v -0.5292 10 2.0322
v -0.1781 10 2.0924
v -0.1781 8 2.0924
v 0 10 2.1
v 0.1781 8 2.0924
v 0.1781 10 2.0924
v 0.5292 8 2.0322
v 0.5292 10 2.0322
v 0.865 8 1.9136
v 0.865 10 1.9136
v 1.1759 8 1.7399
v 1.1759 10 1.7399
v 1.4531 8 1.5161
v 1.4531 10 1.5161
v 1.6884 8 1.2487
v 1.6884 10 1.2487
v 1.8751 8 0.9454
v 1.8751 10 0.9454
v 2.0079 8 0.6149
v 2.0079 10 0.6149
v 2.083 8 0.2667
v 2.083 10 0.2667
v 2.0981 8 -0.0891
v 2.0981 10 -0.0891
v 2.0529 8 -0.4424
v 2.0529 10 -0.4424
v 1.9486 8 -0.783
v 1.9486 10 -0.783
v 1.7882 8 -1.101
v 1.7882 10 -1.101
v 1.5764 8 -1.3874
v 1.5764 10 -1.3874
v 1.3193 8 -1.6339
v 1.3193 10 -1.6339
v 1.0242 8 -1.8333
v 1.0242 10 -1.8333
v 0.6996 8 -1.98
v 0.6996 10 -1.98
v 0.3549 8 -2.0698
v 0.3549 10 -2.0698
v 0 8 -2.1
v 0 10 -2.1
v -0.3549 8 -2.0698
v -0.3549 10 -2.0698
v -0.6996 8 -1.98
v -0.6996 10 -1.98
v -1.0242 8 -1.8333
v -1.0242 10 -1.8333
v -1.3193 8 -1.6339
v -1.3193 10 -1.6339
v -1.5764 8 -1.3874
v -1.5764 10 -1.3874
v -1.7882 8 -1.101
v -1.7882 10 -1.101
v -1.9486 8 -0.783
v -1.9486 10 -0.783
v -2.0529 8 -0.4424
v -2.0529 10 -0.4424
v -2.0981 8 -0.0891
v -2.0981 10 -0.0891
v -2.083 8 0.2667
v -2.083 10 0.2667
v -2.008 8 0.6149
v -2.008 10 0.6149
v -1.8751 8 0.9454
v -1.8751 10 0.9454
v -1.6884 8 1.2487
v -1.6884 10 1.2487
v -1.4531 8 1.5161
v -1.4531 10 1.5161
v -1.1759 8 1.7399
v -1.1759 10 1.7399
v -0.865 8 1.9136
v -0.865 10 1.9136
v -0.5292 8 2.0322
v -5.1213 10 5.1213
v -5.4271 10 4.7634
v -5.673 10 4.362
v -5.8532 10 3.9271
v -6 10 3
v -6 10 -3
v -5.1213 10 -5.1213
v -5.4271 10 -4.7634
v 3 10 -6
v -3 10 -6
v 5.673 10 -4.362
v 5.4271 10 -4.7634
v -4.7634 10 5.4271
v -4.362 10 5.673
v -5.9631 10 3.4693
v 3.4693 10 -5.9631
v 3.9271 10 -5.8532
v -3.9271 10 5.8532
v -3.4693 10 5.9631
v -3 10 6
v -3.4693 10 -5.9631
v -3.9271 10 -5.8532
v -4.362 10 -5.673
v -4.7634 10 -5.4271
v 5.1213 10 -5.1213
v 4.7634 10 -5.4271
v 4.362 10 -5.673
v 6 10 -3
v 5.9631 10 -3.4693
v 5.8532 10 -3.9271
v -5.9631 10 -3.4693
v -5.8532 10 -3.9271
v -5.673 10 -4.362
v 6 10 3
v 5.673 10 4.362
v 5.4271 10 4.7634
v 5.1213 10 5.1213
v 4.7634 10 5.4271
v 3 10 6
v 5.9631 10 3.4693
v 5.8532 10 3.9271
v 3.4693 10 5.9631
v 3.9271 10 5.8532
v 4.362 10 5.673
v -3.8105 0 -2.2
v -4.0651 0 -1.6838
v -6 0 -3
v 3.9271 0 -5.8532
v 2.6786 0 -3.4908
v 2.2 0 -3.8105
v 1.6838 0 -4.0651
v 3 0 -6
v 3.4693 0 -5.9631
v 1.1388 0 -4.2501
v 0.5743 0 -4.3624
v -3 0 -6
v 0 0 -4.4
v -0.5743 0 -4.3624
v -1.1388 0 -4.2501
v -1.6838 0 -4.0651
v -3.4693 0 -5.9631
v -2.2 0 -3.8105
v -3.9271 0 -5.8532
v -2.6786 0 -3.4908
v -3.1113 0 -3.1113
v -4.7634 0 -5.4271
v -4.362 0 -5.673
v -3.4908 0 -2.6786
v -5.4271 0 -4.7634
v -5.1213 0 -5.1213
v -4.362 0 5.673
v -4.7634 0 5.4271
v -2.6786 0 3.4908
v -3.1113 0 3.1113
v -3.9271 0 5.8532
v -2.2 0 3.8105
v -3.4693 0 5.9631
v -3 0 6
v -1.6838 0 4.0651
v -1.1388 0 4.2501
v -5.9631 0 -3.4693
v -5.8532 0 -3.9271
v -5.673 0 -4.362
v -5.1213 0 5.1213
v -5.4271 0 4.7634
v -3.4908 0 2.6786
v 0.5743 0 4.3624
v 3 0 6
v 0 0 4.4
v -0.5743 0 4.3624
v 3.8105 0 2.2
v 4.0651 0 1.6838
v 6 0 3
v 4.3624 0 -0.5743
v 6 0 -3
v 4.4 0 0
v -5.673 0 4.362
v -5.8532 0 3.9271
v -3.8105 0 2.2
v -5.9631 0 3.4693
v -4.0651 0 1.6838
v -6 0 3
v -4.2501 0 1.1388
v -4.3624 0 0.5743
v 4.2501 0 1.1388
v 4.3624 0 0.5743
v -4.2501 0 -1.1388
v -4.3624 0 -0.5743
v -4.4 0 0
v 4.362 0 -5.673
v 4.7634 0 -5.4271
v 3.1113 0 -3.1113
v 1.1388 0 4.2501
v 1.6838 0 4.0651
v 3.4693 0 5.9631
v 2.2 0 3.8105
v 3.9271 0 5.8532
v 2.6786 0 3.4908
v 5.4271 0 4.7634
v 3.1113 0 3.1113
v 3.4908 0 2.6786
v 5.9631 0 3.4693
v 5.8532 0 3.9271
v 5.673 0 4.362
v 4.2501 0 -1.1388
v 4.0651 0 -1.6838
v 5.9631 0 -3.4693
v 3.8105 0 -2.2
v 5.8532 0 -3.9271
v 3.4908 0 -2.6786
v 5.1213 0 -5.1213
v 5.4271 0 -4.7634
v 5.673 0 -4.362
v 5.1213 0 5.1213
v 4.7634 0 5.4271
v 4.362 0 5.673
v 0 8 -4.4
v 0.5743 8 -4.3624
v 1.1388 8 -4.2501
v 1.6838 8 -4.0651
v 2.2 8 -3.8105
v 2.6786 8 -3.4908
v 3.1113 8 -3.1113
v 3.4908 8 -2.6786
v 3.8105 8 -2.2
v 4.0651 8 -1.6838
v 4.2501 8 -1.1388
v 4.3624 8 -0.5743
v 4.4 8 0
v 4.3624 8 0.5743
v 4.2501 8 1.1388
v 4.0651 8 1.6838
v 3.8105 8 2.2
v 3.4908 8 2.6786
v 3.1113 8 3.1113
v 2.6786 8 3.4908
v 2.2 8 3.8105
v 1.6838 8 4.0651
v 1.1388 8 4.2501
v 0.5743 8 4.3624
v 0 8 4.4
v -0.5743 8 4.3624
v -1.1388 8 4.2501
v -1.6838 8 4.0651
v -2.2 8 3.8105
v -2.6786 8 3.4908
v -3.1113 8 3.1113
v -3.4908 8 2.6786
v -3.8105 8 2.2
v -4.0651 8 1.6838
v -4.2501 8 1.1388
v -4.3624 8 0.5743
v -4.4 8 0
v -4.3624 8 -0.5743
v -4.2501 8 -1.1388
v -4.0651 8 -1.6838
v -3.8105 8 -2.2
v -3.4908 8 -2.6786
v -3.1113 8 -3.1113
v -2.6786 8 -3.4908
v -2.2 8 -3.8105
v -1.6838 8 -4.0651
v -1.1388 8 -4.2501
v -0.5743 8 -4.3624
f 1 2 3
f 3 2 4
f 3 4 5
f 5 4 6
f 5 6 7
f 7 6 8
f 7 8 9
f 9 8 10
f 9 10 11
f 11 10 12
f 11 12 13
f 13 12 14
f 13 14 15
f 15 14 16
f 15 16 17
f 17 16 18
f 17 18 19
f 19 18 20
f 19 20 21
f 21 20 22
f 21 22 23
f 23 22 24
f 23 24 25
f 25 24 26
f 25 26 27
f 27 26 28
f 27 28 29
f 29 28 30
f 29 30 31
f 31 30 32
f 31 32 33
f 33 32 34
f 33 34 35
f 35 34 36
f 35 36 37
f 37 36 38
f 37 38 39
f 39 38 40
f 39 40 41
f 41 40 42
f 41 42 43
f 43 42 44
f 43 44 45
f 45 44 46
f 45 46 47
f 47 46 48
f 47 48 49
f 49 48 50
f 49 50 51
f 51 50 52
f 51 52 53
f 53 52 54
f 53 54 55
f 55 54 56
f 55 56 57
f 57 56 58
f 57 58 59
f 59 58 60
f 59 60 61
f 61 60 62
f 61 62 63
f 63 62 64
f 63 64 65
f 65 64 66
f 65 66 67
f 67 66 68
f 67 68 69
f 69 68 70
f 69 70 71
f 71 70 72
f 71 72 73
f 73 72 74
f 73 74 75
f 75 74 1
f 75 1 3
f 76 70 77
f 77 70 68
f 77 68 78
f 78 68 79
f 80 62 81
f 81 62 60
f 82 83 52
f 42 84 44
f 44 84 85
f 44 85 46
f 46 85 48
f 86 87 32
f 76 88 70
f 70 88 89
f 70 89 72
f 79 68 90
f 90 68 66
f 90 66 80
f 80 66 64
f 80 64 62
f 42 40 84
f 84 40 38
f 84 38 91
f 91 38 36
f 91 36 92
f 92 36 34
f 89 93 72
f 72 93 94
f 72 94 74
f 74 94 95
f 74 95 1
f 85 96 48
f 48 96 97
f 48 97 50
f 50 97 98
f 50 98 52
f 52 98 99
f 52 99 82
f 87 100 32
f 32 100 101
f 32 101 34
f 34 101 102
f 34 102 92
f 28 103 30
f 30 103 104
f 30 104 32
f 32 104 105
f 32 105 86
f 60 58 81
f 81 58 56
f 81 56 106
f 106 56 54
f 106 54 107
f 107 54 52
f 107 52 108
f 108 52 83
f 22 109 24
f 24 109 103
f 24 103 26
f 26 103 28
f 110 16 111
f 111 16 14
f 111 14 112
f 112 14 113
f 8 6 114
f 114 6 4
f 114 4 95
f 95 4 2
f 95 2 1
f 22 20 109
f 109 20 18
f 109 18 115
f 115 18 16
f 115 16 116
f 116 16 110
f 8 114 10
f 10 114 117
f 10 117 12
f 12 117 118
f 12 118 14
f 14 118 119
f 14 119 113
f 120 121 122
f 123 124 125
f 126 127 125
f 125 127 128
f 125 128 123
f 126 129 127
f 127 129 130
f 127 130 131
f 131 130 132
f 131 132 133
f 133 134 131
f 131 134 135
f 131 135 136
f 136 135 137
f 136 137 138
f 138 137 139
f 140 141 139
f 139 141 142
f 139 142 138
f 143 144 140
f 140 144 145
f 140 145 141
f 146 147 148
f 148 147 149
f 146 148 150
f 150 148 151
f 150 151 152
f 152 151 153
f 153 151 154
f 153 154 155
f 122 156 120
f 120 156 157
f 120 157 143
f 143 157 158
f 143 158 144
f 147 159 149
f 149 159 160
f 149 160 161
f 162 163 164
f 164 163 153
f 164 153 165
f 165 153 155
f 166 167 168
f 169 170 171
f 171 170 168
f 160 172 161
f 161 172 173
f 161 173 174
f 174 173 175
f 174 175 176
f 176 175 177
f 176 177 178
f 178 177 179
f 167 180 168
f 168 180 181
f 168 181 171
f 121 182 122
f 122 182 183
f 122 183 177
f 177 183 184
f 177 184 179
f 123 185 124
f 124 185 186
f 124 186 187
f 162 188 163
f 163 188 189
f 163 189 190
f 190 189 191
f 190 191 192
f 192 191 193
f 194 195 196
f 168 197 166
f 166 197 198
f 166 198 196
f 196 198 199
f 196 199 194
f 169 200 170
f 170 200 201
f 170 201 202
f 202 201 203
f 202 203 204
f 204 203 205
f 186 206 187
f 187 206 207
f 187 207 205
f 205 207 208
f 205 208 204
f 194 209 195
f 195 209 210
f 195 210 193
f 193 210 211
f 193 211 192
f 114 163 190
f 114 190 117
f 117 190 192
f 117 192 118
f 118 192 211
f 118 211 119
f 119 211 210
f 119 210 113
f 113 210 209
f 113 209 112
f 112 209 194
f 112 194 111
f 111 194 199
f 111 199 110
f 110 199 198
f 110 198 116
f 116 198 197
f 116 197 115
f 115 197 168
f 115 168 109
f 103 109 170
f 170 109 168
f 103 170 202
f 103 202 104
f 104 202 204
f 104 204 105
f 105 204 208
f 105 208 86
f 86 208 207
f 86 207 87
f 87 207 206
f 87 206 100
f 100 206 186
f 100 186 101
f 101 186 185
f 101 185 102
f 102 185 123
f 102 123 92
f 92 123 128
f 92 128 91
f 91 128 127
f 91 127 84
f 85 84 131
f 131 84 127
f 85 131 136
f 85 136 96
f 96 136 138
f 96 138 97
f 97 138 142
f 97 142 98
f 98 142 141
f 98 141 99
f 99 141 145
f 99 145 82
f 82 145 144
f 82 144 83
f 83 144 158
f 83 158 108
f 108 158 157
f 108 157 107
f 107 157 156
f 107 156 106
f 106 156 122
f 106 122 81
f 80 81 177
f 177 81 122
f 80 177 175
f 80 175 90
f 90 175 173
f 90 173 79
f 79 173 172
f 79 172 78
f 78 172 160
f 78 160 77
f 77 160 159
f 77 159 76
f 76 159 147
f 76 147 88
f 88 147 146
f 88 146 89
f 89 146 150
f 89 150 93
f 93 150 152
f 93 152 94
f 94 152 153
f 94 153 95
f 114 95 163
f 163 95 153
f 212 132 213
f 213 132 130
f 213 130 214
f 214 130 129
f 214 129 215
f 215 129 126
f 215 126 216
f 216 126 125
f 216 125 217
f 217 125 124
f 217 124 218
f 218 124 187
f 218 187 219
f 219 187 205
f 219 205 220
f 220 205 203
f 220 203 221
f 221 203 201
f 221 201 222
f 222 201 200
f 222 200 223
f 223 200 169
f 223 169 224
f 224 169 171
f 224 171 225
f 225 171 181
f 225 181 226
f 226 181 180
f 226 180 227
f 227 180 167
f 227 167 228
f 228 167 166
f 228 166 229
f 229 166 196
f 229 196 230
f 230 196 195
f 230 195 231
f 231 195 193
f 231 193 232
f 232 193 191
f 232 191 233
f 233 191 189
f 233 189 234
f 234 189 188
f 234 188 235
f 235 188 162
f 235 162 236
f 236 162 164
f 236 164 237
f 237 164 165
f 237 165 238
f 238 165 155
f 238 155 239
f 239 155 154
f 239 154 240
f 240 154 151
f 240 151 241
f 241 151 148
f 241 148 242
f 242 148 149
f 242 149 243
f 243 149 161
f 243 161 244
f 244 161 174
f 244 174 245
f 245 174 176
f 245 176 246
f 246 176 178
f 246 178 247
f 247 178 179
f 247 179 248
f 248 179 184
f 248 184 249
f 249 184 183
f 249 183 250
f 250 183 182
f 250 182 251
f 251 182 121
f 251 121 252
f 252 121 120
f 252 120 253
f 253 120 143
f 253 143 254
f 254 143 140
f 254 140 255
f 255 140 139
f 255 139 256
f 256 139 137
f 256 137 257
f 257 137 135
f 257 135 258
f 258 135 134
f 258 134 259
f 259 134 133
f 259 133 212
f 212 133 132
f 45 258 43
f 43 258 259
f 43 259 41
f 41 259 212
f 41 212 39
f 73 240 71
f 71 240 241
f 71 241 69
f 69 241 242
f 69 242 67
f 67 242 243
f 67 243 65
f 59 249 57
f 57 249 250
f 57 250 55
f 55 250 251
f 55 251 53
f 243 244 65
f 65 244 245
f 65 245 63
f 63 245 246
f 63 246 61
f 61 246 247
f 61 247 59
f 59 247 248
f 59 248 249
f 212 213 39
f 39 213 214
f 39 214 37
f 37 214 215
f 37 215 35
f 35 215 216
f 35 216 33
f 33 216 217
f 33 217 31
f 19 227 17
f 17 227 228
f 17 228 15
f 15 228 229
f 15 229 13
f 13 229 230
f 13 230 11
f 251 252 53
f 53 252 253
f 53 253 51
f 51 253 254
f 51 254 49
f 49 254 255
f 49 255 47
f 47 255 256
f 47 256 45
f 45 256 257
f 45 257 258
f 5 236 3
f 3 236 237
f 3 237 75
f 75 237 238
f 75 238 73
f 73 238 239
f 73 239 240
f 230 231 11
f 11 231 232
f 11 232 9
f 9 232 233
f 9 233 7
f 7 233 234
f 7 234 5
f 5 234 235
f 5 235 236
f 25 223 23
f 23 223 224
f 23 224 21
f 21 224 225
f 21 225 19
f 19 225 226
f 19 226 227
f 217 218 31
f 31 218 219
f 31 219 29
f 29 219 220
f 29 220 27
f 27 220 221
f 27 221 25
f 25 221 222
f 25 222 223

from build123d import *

# Parameters (mm, degrees)
SKETCH1_R           = 2.1
BOSS_EXTRUDE1_DEPTH = 10
SKETCH2_R           = 4.4
CUT_EXTRUDE1_DEPTH  = 8


with BuildPart() as part:
    # Sketch1 → Boss-Extrude1 (new body)
    with BuildSketch(Plane(origin=(0, 0, 0), x_dir=(1, 0, 0), z_dir=(0, 1, 0))):
        with BuildLine():
            Line((-3, -6), (3, -6))
            ThreePointArc((3, -6), (5.121320344, -5.121320344), (6, -3))
            Line((6, -3), (6, 3))
            ThreePointArc((6, 3), (5.121320344, 5.121320344), (3, 6))
            Line((3, 6), (-3, 6))
            ThreePointArc((-3, 6), (-5.121320344, 5.121320344), (-6, 3))
            Line((-6, 3), (-6, -3))
            ThreePointArc((-6, -3), (-5.121320344, -5.121320344), (-3, -6))
        make_face()
        with Locations(Location((0, 0, 0), (0, 0, 270))):
            Circle(SKETCH1_R, mode=Mode.SUBTRACT)
    extrude(amount=BOSS_EXTRUDE1_DEPTH)

    # Sketch2 → Cut-Extrude1 (cut)
    with BuildSketch(Plane.XZ):
        with Locations(Location((0, 0, 0), (0, 0, 270))):
            Circle(SKETCH2_R)
    extrude(amount=-CUT_EXTRUDE1_DEPTH, mode=Mode.SUBTRACT)


solid = part.part
